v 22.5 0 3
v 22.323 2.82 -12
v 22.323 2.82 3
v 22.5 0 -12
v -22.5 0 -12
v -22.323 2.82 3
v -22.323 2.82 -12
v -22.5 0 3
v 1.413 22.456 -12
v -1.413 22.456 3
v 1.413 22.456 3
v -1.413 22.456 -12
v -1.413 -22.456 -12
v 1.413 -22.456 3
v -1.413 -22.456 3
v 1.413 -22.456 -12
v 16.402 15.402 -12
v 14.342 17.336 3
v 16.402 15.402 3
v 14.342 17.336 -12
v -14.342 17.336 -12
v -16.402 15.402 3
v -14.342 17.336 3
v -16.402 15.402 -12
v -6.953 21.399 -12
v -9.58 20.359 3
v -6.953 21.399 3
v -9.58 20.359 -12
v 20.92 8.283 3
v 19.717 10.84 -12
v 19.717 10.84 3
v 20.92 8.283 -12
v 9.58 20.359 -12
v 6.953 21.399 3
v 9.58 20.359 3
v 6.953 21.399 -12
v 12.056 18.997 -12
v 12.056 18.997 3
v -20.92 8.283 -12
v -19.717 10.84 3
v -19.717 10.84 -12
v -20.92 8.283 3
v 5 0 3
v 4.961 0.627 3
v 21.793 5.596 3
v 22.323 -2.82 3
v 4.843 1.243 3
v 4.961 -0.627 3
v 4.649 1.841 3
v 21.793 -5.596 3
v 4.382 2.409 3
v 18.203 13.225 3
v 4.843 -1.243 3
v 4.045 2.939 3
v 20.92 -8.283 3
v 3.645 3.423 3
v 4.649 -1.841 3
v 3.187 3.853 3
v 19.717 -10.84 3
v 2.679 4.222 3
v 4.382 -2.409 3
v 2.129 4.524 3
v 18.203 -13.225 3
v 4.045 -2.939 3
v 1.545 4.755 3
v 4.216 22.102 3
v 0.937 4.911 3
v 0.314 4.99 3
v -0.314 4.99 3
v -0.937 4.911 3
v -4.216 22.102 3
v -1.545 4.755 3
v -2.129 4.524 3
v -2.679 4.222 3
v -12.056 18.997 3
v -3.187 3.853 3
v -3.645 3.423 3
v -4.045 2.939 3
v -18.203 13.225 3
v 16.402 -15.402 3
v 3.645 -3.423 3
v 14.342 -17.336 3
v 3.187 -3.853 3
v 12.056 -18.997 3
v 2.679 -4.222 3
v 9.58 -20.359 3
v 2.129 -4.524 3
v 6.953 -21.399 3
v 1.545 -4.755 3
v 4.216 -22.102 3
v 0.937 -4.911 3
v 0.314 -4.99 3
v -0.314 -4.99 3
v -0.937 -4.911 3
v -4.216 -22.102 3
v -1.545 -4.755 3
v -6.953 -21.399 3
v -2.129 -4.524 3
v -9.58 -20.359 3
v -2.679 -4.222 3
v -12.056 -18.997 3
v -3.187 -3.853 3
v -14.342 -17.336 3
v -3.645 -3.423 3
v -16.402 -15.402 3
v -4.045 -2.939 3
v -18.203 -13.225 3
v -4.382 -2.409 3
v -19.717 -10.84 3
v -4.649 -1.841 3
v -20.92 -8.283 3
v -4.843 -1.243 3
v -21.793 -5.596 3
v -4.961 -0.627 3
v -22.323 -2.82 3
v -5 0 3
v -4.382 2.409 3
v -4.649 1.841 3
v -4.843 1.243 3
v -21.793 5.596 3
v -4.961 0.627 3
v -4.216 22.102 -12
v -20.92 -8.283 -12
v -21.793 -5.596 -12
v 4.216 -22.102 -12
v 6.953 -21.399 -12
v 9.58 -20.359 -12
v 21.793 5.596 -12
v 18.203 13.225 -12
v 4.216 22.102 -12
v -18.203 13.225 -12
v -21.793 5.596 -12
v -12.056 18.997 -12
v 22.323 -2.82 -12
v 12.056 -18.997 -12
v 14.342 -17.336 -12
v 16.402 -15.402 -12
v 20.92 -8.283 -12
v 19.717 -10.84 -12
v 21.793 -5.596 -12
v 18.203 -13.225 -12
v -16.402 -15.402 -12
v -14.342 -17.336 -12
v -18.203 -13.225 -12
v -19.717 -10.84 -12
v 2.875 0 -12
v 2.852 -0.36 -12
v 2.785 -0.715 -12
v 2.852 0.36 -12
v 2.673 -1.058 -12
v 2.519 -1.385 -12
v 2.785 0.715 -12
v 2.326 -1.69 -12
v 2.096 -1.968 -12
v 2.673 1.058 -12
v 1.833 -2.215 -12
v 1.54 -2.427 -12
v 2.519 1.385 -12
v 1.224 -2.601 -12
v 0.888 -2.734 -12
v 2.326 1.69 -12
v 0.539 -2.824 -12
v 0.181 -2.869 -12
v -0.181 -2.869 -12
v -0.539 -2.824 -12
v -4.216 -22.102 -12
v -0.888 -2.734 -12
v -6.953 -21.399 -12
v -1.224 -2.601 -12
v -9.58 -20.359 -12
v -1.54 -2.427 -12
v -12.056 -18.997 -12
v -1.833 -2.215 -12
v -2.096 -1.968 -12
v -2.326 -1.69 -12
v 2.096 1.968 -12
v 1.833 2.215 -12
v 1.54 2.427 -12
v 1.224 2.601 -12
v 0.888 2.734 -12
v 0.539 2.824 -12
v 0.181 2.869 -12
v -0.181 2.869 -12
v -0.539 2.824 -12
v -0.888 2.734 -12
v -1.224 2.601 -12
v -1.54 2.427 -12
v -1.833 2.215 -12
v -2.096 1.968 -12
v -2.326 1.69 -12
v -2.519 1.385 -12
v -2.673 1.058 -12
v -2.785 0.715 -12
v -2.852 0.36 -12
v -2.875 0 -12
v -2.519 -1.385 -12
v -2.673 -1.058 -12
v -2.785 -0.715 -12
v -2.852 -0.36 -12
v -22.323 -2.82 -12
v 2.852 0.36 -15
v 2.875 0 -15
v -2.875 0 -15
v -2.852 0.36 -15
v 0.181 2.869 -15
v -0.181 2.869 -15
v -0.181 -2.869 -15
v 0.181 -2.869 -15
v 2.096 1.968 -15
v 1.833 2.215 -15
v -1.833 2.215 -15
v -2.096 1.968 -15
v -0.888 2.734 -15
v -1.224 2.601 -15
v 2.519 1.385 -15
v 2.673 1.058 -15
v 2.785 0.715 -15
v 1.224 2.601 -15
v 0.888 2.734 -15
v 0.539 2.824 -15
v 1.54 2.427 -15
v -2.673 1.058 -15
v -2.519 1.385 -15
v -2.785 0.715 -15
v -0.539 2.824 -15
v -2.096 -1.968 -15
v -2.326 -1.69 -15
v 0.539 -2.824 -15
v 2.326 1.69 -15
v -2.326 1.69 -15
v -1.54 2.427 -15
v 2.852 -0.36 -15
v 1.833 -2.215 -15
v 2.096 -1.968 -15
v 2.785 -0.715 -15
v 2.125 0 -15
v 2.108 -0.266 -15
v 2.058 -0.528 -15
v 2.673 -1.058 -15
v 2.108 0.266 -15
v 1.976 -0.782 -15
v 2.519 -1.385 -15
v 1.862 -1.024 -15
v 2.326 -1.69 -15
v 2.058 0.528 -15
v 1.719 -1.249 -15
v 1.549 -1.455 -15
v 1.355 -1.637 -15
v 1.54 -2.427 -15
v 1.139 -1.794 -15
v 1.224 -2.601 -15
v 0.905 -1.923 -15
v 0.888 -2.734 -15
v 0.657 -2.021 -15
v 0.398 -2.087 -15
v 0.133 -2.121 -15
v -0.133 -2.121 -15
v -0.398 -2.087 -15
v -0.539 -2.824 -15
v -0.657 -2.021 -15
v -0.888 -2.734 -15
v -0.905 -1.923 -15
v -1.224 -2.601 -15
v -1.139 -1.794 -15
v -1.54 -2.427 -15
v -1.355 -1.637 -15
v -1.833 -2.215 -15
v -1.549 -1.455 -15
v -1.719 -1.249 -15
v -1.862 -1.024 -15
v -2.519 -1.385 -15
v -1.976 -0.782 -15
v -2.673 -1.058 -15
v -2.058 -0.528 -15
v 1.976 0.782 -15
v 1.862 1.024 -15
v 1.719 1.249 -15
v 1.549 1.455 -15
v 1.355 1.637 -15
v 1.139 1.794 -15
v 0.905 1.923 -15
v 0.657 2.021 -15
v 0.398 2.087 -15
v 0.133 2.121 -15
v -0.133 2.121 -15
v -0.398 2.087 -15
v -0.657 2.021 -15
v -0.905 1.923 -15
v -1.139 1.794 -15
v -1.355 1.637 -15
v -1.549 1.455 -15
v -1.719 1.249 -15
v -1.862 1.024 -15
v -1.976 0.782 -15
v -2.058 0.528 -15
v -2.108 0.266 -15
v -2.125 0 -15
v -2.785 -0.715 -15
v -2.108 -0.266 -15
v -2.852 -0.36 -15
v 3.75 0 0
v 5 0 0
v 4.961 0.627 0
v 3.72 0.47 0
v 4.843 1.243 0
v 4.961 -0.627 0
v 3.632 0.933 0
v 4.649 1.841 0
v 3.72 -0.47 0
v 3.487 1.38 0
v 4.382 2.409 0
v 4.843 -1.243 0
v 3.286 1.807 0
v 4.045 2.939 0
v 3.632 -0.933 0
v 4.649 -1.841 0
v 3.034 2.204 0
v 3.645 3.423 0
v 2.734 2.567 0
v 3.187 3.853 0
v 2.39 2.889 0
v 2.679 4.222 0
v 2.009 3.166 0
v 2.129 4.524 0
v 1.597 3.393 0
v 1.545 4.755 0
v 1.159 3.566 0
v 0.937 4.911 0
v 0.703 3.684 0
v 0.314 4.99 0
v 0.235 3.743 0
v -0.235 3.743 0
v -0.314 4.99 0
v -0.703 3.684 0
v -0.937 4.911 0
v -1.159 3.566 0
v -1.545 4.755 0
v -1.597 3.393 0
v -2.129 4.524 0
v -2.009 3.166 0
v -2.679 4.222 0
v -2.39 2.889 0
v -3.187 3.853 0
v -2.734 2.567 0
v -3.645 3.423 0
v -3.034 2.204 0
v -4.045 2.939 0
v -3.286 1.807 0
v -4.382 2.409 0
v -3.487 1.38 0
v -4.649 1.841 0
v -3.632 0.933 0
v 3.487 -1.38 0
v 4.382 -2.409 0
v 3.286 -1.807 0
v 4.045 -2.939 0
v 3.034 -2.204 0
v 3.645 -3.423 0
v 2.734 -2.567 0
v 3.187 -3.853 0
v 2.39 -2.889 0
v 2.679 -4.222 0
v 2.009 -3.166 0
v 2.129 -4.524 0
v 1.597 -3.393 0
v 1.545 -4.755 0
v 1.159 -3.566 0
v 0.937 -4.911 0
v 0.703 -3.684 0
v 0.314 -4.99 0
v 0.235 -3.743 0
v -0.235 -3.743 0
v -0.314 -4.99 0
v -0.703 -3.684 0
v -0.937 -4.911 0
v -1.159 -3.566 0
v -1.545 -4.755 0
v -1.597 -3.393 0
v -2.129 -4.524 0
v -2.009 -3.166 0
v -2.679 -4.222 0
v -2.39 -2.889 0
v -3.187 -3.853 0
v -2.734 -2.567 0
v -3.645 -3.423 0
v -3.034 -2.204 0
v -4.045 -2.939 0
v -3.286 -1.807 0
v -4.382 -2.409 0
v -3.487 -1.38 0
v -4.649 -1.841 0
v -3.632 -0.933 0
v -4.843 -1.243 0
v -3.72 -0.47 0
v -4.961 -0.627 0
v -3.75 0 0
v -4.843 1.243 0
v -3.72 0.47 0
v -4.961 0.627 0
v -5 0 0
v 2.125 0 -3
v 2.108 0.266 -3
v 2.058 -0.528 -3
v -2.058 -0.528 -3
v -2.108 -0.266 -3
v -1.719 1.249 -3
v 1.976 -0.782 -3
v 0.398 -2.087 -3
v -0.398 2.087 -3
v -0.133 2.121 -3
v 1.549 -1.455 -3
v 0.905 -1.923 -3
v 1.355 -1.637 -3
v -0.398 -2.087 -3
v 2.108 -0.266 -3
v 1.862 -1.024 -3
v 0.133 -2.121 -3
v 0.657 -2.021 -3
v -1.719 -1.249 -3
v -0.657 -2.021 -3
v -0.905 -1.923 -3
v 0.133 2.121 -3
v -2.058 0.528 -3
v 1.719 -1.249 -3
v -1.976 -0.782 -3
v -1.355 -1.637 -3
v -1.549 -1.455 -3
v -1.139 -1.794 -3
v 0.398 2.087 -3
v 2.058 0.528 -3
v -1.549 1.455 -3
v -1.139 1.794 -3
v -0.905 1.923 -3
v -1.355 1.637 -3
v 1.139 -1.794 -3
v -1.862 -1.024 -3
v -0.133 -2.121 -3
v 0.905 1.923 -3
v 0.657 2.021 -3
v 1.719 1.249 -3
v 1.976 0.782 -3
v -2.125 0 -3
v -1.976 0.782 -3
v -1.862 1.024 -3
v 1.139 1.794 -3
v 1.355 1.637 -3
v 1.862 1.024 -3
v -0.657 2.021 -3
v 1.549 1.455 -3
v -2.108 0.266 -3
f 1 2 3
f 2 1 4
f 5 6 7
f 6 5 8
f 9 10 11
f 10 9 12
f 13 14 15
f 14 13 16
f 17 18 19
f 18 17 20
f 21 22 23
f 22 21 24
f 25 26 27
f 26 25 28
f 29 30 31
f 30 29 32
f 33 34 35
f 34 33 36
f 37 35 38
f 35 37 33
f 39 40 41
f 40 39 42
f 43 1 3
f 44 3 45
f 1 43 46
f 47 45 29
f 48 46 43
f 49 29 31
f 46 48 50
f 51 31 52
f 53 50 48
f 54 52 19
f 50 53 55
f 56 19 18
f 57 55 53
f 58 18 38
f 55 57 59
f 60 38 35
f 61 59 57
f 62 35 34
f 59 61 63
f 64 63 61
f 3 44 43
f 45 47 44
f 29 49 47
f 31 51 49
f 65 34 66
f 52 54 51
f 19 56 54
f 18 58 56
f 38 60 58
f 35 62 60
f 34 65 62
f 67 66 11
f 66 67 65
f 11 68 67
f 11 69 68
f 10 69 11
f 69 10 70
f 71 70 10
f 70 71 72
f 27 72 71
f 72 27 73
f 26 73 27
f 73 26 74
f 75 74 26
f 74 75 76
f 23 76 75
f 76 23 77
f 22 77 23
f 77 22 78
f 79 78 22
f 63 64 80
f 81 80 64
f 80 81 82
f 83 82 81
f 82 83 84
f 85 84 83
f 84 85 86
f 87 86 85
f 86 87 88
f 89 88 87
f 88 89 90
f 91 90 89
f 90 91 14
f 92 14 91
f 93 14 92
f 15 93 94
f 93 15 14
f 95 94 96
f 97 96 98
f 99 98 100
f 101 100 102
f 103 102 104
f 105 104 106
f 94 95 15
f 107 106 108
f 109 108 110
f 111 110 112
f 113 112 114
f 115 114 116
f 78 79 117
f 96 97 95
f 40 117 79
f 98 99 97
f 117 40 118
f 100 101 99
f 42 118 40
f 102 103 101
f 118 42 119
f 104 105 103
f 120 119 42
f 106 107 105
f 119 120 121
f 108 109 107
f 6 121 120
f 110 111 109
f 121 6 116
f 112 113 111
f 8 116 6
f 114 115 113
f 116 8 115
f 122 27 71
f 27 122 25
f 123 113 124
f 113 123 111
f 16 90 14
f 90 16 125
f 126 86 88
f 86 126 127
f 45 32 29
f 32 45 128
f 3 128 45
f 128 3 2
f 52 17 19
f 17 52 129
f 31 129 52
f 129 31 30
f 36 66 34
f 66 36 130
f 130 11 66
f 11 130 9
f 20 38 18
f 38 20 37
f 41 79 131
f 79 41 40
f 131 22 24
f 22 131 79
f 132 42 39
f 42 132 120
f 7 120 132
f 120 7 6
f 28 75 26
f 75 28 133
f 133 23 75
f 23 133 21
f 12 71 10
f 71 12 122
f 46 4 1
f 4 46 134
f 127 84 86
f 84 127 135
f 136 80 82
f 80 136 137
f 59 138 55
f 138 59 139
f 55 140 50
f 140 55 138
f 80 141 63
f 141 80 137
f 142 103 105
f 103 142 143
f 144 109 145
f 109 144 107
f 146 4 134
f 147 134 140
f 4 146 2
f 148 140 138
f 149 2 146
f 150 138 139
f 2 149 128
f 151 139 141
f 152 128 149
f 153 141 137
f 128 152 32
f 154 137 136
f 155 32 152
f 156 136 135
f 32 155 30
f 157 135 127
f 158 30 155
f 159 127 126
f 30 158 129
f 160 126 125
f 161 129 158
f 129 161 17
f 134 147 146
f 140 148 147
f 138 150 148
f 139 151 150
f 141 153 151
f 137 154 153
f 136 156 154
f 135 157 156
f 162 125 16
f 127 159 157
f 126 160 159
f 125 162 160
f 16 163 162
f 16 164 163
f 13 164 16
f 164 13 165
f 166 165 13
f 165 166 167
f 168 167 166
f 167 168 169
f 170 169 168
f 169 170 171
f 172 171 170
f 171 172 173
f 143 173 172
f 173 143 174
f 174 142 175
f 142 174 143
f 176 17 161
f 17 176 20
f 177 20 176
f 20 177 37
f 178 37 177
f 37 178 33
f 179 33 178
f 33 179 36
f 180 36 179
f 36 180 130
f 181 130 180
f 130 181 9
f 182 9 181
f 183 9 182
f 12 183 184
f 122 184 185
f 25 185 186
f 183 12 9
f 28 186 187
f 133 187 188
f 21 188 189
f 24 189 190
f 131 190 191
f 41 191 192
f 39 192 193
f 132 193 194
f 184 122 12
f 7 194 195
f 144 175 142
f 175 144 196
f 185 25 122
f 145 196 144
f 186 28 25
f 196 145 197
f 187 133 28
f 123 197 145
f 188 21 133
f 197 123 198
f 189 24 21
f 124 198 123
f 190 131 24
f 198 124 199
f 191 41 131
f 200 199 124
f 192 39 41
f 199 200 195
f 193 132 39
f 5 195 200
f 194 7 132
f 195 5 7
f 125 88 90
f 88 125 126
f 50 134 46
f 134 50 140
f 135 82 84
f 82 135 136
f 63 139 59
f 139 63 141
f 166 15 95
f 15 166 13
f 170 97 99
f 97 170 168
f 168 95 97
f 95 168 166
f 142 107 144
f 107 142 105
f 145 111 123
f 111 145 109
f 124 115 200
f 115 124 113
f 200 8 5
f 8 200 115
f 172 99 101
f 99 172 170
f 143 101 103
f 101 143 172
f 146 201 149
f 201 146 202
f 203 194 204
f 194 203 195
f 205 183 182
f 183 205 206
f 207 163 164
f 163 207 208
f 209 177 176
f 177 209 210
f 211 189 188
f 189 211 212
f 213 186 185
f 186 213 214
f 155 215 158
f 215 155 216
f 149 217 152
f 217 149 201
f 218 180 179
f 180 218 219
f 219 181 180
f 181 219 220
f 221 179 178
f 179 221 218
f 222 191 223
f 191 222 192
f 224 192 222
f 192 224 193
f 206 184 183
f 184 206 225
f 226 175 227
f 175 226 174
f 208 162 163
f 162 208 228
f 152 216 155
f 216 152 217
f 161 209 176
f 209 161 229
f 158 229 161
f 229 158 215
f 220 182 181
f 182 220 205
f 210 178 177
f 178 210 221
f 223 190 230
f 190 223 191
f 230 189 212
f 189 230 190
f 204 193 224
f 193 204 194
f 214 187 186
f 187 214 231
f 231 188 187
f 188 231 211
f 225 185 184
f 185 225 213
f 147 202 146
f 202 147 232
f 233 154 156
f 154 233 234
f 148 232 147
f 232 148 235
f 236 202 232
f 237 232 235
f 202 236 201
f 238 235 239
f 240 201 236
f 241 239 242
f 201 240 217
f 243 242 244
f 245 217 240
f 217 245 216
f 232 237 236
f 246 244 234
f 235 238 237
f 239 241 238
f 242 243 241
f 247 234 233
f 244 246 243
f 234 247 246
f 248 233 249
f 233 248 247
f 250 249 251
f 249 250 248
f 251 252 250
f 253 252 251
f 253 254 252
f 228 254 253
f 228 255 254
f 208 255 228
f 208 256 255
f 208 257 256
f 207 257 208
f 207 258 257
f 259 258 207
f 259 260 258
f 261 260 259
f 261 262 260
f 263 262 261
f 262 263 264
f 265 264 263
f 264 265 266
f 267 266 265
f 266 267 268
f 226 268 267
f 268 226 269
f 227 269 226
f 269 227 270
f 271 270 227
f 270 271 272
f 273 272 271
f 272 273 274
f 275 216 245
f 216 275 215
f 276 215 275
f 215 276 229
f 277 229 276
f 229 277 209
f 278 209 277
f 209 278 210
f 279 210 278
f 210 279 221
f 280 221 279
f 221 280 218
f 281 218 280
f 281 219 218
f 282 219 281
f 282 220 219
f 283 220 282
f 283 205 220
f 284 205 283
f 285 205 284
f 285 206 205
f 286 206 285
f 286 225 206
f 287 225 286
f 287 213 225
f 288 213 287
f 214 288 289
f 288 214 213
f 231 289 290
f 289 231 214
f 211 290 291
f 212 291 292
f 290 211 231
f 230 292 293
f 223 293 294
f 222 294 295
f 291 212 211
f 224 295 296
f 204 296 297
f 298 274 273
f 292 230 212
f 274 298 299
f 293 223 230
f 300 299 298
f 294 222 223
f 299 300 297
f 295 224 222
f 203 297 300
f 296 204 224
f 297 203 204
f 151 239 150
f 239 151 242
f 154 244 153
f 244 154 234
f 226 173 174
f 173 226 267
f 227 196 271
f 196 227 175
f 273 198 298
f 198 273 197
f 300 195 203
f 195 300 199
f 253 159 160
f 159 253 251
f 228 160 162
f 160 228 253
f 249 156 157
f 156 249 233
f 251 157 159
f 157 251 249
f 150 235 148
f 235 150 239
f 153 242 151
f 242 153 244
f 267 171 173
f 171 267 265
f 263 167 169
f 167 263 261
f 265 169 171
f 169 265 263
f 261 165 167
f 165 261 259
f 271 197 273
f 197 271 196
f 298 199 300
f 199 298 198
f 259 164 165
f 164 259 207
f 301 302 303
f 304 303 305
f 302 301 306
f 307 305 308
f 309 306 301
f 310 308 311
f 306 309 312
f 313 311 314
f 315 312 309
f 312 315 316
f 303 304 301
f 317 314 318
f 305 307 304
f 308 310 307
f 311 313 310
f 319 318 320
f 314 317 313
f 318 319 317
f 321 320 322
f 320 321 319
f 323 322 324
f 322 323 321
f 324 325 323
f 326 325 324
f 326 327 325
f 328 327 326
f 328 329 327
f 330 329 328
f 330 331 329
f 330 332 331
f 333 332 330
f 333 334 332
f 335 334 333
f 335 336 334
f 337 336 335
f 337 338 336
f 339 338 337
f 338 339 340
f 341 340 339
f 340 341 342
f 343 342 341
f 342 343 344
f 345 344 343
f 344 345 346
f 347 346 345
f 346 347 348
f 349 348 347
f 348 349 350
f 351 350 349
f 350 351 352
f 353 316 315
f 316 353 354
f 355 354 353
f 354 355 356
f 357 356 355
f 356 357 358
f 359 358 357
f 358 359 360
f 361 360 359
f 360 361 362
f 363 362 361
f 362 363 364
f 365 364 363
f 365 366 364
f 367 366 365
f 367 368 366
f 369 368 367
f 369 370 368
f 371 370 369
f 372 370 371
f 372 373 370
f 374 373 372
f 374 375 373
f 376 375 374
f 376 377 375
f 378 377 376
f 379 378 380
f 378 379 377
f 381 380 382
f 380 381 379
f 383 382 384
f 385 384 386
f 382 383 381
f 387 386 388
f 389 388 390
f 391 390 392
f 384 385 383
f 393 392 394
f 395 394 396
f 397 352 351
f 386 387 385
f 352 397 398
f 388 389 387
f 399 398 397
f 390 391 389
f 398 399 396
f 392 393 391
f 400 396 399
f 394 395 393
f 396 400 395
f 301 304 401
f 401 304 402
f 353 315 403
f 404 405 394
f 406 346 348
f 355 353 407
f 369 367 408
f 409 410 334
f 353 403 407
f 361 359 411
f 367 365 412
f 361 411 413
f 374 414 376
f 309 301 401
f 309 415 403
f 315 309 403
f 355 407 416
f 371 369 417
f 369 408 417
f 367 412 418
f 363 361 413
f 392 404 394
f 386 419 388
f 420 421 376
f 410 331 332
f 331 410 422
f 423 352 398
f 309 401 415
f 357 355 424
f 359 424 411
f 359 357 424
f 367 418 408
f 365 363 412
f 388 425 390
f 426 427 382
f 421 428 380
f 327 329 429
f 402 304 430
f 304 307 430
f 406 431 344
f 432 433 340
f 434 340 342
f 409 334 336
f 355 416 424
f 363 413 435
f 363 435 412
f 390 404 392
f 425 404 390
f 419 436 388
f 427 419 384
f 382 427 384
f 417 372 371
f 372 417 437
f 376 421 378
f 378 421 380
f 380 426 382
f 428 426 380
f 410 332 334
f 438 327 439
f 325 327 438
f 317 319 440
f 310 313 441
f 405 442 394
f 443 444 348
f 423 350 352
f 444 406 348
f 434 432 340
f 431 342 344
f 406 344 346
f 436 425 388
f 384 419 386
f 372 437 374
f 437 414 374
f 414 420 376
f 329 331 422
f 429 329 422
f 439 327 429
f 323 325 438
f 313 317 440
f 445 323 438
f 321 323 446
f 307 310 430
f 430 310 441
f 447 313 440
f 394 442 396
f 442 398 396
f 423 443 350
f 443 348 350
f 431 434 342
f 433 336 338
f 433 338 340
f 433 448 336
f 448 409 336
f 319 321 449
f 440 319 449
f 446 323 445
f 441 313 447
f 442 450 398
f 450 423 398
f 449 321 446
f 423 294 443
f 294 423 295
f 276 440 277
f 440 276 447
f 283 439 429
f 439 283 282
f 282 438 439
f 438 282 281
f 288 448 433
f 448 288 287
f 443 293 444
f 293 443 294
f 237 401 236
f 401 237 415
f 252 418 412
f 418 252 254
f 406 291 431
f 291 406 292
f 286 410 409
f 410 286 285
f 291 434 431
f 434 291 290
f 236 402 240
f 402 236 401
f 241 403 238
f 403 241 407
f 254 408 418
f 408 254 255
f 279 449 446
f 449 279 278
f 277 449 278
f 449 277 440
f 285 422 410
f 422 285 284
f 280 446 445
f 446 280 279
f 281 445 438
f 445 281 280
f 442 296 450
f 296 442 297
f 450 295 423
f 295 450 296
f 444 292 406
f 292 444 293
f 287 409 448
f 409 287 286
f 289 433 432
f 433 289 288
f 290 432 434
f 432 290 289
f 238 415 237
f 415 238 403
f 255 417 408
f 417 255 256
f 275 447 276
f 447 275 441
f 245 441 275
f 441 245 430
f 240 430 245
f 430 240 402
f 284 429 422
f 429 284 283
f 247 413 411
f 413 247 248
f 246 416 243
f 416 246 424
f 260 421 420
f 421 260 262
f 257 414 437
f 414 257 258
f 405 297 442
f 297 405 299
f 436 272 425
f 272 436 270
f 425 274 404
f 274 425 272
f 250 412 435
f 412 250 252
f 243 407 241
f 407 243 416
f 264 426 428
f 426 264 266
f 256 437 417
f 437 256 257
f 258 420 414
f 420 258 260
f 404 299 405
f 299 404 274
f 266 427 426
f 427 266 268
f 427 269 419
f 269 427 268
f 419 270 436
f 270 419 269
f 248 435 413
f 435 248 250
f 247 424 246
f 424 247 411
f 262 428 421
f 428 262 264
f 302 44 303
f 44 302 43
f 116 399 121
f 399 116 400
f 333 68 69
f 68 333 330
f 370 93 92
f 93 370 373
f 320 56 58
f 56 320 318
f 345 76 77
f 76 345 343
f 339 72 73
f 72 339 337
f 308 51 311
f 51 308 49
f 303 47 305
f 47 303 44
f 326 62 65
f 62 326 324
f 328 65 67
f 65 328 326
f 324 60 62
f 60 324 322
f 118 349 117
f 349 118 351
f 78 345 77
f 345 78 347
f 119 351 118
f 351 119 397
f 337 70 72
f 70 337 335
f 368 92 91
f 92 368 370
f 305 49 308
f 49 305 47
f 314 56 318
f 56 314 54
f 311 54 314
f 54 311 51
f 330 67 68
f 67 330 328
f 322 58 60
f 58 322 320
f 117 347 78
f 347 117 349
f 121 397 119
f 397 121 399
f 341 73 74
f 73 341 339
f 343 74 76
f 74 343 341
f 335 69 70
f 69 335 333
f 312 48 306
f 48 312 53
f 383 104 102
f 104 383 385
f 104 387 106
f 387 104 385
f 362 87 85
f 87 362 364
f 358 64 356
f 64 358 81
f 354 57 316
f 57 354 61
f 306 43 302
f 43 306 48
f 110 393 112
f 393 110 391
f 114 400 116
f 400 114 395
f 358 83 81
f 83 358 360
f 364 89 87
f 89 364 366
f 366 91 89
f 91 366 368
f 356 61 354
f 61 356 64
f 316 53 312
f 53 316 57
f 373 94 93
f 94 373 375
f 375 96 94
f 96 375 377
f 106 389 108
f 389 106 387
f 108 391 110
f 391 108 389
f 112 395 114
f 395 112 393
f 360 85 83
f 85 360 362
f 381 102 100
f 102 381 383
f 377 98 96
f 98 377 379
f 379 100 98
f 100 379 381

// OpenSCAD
$fn = 50;

difference() {
	union() {
		translate(v = [0, 0, -12.0]) {
			cylinder(h = 15, r = 22.5);
		}
		#translate(v = [0, 0, -15.0]) {
			cylinder(h = 15, r = 2.875);
		}
	}
	union() {
		translate(v = [0, 0, 0]) {
			rotate(a = [0, 0, 0]) {
				difference() {
					union() {
						translate(v = [0, 0, -15.0]) {
							cylinder(h = 15, r = 2.0);
						}
						translate(v = [0, 0, -3]) {
							cylinder(h = 3, r1 = 2.125, r2 = 3.75);
						}
						translate(v = [0, 0, -15.0]) {
							cylinder(h = 15, r = 2.125);
						}
						translate(v = [0, 0, -15.0]) {
							cylinder(h = 15, r = 2.0);
						}
					}
					union();
				}
			}
		}
		#cylinder(h = 3, r = 5.0);
	}
}
